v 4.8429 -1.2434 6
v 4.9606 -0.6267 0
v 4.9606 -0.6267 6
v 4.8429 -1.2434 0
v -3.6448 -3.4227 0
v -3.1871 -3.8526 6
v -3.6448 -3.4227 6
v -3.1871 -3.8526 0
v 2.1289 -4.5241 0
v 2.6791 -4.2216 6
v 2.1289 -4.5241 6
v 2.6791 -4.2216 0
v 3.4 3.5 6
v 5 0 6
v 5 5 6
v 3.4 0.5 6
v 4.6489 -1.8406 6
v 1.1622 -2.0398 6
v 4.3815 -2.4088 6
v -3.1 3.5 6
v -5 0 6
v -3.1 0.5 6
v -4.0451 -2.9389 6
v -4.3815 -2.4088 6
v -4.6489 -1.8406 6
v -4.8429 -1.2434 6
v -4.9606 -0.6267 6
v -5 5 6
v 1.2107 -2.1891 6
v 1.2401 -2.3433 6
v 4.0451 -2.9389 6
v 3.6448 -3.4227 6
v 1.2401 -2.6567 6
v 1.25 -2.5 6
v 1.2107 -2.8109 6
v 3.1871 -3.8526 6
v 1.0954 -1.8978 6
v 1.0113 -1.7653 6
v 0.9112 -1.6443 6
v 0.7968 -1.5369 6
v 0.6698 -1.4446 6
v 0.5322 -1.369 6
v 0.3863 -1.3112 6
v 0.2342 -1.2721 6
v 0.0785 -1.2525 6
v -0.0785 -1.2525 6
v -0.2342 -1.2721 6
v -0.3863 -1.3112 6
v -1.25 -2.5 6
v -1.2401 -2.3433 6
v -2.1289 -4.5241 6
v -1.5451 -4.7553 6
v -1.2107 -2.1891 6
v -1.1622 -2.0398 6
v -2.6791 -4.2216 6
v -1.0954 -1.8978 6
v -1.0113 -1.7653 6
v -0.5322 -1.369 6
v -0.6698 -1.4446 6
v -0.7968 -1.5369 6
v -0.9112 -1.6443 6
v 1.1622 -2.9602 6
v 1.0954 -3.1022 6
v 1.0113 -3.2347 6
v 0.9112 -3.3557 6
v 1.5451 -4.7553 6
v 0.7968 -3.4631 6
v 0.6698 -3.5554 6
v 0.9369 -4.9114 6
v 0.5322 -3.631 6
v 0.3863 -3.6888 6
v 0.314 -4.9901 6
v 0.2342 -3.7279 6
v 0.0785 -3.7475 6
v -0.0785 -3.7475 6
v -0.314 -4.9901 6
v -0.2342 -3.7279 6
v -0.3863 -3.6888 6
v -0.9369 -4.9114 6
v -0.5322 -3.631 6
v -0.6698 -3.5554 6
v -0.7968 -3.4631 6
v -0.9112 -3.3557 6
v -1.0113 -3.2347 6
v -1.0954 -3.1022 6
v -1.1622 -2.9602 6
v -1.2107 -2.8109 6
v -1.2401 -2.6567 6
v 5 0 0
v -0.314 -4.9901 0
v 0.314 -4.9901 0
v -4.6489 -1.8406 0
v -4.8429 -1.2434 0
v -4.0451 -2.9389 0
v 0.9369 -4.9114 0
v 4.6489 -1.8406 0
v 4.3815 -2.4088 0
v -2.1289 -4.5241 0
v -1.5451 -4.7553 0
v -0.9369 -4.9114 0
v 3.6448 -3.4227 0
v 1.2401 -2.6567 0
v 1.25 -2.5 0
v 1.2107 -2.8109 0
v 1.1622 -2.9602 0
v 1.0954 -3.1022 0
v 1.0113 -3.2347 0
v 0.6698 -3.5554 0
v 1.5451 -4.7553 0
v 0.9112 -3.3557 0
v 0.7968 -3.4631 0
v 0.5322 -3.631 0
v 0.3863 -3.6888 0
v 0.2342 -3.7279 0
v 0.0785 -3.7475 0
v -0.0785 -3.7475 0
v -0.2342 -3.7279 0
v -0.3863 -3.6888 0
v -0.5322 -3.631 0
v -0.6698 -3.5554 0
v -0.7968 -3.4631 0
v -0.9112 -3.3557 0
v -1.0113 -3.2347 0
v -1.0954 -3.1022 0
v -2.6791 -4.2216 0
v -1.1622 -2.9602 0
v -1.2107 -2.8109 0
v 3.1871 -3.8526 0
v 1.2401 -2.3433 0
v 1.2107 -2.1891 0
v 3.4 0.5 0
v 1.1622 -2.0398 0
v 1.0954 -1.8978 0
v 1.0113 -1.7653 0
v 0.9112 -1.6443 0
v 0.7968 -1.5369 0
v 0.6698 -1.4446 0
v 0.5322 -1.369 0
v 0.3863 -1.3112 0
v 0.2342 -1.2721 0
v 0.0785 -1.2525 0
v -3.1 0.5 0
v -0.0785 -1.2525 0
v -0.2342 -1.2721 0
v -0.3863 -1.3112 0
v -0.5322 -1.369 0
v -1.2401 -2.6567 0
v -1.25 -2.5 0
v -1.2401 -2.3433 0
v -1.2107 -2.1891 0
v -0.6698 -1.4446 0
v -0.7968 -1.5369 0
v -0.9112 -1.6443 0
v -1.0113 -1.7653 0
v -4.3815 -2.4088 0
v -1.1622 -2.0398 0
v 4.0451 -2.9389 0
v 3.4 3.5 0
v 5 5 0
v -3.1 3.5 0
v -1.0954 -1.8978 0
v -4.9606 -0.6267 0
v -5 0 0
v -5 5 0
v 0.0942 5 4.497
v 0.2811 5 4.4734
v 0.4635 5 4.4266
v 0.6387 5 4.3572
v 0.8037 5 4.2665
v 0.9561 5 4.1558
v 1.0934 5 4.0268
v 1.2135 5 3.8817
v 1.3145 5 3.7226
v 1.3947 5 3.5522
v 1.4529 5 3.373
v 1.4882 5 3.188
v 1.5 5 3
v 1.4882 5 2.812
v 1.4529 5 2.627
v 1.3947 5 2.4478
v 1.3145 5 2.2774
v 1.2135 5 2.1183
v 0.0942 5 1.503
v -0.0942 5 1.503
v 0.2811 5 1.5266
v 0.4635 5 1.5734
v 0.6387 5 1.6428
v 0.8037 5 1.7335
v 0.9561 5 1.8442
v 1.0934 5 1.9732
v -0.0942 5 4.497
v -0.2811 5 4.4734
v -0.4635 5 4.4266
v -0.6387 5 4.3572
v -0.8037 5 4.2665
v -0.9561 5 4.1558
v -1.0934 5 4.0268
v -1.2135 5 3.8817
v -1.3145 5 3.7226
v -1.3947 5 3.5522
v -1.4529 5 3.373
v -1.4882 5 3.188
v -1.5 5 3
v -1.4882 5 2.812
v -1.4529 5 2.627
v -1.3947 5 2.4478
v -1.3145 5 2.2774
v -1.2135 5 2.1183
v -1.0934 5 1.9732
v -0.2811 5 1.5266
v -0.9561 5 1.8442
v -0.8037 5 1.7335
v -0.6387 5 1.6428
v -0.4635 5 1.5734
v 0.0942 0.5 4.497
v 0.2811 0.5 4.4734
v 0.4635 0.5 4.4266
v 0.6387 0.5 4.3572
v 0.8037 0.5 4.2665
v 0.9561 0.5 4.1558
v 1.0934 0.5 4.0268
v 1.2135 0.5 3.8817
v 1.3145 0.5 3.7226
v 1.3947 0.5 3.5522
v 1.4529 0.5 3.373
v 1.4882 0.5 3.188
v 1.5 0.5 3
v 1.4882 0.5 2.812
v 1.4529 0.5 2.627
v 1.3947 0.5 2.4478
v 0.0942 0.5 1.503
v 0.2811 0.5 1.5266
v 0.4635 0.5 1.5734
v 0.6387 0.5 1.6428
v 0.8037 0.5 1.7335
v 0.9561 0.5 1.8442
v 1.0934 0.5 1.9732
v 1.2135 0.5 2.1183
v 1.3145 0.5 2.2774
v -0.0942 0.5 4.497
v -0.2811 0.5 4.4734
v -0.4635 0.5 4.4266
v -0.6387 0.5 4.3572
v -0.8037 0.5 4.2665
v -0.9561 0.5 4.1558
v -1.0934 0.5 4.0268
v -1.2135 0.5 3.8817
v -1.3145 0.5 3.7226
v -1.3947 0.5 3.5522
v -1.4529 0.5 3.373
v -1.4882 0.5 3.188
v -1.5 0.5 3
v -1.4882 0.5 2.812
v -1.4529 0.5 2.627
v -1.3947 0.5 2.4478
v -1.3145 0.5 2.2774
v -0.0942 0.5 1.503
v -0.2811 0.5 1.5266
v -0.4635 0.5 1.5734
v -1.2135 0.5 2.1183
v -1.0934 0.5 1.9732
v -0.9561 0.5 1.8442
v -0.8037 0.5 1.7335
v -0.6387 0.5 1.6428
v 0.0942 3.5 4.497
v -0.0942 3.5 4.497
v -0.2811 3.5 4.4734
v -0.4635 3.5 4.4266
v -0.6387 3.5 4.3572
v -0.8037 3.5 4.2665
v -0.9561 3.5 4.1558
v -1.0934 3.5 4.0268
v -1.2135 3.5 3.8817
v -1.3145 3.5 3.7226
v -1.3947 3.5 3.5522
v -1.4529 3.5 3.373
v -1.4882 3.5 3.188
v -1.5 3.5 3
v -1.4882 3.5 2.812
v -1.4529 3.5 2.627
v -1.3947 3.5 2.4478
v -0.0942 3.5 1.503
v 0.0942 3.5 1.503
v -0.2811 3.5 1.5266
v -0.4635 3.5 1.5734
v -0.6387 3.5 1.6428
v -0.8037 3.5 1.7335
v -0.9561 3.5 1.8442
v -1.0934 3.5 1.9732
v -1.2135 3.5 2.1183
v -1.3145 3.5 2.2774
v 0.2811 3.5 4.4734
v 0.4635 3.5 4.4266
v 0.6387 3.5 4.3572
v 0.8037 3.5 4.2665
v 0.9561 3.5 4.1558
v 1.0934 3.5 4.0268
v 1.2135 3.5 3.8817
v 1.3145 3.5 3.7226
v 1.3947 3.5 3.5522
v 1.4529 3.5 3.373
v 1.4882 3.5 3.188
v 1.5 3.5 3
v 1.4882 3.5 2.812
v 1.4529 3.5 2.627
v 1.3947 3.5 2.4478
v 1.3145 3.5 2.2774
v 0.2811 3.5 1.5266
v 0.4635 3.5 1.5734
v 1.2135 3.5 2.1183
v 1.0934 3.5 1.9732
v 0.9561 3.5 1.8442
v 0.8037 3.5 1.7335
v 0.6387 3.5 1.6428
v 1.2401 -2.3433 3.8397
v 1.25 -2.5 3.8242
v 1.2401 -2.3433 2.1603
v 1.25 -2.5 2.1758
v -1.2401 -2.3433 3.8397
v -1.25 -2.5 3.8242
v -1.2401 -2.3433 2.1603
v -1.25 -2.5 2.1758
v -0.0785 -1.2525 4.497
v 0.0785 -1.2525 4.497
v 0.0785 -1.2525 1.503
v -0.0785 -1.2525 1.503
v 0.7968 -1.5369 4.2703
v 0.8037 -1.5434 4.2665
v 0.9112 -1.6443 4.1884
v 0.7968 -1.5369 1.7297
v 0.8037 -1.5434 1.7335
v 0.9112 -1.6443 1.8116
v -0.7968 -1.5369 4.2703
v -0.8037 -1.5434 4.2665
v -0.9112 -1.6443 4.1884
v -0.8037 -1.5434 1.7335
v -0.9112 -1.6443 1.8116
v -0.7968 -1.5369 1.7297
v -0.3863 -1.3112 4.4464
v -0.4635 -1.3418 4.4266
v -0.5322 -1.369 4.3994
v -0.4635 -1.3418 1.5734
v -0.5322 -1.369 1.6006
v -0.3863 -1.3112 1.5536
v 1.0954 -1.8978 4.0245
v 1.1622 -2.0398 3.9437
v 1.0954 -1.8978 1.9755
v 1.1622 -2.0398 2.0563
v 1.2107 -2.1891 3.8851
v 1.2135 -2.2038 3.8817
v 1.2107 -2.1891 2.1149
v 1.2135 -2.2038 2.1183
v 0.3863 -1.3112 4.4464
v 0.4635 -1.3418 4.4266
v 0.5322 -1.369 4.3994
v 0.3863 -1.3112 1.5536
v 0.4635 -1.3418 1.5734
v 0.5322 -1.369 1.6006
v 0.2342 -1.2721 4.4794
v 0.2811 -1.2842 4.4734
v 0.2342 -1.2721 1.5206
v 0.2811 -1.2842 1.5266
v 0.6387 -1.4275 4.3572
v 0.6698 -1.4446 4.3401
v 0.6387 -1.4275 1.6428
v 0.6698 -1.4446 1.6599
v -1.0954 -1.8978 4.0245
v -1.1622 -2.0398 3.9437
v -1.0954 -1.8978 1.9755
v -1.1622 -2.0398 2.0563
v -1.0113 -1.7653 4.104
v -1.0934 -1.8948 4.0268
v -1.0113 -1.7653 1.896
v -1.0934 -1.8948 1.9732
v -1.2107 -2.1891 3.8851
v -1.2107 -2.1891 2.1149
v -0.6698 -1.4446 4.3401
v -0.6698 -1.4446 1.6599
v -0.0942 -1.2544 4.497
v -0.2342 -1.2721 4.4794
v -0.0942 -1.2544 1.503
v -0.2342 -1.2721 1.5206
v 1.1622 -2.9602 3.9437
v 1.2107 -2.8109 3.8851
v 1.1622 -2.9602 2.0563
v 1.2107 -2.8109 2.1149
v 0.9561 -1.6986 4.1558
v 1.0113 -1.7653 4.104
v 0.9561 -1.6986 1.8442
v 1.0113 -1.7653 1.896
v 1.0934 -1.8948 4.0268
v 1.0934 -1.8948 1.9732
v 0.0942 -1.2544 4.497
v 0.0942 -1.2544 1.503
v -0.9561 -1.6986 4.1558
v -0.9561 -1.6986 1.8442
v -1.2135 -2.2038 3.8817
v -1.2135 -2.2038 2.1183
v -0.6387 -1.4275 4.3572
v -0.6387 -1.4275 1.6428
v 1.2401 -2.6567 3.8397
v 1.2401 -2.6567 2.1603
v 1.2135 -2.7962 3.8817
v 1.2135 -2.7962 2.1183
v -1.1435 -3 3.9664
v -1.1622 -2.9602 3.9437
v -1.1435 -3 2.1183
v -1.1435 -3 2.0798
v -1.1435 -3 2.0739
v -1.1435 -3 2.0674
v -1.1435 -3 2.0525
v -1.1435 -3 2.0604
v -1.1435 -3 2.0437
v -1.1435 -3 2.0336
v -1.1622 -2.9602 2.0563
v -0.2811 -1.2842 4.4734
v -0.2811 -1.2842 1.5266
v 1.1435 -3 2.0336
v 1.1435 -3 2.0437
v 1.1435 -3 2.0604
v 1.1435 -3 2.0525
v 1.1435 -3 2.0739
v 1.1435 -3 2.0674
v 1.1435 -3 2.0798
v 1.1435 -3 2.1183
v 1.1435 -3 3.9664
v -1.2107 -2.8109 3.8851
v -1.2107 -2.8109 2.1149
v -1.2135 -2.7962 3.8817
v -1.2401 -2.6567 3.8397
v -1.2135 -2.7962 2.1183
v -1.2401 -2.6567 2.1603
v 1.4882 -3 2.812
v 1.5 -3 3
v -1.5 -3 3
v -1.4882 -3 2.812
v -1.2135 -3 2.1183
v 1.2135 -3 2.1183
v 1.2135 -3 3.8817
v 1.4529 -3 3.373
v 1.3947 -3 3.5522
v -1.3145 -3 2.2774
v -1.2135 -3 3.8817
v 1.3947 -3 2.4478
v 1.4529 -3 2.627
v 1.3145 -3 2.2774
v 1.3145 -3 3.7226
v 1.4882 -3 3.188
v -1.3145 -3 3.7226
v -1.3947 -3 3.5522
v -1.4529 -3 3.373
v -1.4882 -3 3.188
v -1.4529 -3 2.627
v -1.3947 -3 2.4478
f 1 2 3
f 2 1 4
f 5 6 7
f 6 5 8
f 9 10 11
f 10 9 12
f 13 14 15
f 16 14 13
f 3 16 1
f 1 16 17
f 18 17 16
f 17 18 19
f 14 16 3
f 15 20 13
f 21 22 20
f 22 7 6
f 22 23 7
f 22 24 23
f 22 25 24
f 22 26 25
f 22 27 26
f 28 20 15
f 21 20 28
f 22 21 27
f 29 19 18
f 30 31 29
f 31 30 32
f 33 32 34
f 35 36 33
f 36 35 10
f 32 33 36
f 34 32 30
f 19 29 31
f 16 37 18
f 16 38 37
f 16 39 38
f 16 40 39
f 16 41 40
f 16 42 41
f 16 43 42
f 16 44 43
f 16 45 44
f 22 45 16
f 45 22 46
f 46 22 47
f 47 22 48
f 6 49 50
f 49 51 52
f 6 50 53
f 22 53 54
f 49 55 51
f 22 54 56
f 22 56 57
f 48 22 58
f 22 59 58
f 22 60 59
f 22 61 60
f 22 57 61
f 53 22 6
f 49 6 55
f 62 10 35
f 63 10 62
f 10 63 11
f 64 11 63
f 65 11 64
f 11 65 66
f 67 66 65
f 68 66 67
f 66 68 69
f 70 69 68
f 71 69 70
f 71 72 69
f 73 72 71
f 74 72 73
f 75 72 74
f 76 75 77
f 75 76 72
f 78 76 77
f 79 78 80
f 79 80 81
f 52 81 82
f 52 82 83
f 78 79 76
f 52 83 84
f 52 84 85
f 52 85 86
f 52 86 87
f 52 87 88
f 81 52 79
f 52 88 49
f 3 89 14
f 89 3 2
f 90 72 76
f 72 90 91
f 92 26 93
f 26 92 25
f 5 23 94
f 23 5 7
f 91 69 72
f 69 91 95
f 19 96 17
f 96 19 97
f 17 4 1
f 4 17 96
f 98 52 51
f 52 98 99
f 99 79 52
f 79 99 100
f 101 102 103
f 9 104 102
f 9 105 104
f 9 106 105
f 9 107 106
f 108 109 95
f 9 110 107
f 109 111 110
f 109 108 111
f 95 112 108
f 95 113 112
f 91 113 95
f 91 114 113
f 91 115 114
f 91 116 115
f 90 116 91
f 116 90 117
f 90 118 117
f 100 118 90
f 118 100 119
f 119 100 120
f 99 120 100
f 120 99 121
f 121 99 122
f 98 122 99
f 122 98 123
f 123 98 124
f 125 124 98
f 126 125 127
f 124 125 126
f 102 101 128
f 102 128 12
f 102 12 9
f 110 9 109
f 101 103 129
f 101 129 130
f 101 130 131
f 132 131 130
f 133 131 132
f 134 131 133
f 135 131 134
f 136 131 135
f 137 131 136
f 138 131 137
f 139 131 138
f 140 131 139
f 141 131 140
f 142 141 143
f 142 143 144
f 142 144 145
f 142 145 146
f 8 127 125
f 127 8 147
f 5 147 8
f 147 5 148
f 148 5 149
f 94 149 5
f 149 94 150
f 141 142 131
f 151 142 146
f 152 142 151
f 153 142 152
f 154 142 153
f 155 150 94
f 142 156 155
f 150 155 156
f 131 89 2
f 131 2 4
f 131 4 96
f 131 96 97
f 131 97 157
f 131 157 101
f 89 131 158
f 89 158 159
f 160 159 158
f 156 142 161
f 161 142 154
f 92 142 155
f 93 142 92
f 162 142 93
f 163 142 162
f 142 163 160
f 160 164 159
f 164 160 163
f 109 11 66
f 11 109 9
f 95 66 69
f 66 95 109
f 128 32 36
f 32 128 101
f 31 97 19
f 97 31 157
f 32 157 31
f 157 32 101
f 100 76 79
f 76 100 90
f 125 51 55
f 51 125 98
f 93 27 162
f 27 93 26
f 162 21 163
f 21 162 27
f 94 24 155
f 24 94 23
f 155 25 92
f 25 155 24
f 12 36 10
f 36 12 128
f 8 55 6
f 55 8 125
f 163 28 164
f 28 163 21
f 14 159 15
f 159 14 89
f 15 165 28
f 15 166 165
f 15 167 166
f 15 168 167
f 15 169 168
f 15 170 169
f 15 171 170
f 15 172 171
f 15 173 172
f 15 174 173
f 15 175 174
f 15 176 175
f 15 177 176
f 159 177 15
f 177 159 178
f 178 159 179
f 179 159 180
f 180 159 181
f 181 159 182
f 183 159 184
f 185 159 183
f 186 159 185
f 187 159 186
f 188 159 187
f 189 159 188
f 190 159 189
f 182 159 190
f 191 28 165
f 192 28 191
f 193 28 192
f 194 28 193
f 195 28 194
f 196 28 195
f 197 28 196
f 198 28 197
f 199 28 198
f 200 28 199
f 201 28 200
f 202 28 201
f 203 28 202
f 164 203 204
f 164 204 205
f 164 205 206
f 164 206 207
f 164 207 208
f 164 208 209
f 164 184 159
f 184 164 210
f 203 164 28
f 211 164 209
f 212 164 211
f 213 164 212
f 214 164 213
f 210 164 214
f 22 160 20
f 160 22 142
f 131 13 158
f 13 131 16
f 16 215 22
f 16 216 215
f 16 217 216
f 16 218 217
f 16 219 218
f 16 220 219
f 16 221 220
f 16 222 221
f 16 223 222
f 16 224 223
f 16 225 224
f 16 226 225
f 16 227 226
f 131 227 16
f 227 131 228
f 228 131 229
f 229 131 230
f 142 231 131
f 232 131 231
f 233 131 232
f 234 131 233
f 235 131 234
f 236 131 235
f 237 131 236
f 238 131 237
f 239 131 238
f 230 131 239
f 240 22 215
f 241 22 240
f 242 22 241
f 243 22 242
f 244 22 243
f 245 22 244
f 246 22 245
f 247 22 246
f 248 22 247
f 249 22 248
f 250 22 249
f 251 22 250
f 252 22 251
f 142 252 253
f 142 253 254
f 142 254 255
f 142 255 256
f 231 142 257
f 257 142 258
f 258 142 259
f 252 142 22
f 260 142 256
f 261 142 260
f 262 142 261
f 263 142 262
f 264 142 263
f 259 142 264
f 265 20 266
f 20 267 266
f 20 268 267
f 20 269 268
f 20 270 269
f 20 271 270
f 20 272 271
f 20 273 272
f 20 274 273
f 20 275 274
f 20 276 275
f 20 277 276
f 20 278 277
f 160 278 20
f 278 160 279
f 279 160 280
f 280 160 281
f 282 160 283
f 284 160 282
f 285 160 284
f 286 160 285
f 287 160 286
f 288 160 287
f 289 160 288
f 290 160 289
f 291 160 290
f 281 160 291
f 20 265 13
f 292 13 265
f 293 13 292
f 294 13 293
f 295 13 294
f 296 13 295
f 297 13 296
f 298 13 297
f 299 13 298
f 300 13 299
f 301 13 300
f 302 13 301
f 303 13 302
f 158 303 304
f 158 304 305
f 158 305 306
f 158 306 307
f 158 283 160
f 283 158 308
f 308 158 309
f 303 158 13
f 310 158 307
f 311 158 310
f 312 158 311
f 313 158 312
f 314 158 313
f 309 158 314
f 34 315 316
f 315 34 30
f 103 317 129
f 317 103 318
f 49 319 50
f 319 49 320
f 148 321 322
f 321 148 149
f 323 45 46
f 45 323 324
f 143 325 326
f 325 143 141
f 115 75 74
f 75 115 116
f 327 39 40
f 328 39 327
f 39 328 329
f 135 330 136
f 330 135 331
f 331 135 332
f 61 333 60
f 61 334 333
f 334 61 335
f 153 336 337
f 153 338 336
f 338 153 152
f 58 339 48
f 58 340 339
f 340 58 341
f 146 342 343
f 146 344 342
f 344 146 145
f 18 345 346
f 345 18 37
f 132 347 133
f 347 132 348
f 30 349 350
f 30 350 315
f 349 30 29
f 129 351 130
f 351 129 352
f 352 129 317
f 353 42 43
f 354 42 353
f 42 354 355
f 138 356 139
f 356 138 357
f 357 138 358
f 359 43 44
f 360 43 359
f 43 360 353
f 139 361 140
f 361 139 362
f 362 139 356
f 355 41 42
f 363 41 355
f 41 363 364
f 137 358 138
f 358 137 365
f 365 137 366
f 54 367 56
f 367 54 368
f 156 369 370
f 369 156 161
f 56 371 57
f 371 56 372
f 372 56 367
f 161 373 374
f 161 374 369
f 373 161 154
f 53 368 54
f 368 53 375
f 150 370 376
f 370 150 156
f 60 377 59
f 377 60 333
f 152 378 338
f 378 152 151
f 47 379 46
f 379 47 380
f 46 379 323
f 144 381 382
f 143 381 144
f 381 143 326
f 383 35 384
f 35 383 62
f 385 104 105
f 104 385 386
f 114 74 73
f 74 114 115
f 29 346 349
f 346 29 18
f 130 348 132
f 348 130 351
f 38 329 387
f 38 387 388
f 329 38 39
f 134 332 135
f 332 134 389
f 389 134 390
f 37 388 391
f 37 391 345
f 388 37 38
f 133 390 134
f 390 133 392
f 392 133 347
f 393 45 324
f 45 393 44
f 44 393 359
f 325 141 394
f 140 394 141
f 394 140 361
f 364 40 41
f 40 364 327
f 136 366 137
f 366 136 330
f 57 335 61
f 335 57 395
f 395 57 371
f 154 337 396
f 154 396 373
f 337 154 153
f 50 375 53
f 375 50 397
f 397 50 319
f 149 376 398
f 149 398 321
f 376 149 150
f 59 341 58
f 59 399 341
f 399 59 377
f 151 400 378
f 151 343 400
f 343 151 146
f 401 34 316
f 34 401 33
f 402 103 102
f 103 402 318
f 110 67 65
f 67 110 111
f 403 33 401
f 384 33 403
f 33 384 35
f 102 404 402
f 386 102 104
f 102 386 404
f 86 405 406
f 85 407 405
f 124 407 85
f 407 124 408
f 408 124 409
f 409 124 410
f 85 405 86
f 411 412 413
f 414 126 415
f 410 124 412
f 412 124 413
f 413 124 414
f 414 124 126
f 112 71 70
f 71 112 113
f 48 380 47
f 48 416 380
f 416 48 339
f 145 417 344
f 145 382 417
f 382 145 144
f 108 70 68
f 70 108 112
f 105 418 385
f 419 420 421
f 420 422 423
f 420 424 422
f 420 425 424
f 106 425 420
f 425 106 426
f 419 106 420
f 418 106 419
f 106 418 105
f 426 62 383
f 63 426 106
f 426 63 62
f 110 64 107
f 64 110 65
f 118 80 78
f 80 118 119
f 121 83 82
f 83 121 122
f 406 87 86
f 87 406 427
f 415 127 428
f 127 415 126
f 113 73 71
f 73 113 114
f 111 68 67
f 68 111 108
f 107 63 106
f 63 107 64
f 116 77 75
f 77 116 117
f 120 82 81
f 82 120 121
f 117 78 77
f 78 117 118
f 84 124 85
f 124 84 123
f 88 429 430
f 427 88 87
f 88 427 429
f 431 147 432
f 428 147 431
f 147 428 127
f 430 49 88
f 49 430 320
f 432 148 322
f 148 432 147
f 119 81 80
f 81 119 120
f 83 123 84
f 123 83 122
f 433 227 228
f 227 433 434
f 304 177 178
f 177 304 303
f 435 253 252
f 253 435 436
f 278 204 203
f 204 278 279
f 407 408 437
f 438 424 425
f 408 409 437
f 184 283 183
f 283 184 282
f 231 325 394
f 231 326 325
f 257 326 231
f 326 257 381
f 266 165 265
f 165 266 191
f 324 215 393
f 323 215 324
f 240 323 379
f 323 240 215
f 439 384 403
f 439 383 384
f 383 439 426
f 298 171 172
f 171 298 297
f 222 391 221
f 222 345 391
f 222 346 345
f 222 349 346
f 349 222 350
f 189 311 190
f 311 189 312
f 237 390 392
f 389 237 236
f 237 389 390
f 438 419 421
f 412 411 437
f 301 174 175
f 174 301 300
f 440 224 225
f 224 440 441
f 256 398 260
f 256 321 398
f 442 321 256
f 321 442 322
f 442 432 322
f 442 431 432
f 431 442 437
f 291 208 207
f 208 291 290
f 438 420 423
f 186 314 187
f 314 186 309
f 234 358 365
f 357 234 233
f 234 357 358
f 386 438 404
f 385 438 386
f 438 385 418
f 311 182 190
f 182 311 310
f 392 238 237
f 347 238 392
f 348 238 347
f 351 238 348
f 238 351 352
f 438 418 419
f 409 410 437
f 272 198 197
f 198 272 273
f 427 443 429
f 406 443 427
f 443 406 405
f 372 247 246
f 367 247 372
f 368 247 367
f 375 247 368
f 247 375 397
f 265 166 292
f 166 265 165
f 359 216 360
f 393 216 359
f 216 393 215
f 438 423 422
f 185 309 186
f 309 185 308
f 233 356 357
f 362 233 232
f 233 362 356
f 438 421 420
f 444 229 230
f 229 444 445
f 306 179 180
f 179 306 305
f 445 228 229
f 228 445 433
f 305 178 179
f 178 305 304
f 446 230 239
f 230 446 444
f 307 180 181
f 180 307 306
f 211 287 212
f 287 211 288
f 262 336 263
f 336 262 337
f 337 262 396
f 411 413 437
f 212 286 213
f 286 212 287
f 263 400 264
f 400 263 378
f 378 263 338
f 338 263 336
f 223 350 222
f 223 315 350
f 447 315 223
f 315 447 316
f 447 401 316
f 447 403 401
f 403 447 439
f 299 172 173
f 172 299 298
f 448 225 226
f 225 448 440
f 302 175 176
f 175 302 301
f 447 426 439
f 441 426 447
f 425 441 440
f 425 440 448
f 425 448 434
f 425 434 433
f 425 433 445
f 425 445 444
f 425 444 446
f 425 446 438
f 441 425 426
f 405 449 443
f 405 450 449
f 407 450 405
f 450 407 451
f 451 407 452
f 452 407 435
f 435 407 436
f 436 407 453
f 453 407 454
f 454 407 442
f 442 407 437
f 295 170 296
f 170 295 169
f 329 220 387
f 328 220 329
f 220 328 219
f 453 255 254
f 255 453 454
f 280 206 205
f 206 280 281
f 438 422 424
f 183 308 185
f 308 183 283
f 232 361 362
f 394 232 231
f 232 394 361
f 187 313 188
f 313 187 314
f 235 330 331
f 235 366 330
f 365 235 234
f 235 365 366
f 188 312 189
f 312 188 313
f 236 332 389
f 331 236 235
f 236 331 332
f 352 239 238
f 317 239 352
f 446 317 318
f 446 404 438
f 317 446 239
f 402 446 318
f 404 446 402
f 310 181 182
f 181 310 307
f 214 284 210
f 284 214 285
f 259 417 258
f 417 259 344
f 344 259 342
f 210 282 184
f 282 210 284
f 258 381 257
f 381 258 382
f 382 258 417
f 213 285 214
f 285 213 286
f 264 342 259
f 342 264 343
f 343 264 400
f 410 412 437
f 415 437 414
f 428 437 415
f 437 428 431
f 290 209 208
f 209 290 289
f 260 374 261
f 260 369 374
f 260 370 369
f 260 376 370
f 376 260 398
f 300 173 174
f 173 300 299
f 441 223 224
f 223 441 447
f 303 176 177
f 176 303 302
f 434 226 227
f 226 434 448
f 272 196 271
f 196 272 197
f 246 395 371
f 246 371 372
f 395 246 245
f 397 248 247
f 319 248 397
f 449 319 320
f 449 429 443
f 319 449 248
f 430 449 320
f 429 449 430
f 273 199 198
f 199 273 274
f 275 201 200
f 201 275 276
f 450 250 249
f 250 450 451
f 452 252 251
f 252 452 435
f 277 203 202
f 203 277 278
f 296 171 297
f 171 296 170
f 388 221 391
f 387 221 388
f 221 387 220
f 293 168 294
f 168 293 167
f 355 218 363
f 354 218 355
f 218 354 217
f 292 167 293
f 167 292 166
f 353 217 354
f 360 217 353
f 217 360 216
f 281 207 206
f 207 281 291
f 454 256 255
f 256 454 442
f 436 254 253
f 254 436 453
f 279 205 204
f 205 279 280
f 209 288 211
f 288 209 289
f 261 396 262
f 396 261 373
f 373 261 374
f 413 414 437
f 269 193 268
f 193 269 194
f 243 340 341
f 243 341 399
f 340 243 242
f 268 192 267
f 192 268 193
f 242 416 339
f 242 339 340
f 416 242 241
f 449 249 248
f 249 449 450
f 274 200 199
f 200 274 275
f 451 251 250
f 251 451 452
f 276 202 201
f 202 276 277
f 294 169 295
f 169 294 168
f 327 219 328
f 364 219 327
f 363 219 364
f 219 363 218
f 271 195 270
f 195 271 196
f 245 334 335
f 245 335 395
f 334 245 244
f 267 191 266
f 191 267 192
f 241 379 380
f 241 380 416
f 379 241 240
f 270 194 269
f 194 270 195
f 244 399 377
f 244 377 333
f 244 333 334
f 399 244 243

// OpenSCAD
$fn = 50;

difference(){
union(){
cylinder(d=10,6);
translate([-5,0,0])
cube([10,5,6]);
}
translate([-3.1,0.5,-0.05])
cube([6.5,3,6.1]);
translate([0,-2.5,-0.05])
cylinder(d=2.5,6.1);
translate([0,-3,3])
rotate(a=[-90,0,0])
cylinder(d=3,8);
}
